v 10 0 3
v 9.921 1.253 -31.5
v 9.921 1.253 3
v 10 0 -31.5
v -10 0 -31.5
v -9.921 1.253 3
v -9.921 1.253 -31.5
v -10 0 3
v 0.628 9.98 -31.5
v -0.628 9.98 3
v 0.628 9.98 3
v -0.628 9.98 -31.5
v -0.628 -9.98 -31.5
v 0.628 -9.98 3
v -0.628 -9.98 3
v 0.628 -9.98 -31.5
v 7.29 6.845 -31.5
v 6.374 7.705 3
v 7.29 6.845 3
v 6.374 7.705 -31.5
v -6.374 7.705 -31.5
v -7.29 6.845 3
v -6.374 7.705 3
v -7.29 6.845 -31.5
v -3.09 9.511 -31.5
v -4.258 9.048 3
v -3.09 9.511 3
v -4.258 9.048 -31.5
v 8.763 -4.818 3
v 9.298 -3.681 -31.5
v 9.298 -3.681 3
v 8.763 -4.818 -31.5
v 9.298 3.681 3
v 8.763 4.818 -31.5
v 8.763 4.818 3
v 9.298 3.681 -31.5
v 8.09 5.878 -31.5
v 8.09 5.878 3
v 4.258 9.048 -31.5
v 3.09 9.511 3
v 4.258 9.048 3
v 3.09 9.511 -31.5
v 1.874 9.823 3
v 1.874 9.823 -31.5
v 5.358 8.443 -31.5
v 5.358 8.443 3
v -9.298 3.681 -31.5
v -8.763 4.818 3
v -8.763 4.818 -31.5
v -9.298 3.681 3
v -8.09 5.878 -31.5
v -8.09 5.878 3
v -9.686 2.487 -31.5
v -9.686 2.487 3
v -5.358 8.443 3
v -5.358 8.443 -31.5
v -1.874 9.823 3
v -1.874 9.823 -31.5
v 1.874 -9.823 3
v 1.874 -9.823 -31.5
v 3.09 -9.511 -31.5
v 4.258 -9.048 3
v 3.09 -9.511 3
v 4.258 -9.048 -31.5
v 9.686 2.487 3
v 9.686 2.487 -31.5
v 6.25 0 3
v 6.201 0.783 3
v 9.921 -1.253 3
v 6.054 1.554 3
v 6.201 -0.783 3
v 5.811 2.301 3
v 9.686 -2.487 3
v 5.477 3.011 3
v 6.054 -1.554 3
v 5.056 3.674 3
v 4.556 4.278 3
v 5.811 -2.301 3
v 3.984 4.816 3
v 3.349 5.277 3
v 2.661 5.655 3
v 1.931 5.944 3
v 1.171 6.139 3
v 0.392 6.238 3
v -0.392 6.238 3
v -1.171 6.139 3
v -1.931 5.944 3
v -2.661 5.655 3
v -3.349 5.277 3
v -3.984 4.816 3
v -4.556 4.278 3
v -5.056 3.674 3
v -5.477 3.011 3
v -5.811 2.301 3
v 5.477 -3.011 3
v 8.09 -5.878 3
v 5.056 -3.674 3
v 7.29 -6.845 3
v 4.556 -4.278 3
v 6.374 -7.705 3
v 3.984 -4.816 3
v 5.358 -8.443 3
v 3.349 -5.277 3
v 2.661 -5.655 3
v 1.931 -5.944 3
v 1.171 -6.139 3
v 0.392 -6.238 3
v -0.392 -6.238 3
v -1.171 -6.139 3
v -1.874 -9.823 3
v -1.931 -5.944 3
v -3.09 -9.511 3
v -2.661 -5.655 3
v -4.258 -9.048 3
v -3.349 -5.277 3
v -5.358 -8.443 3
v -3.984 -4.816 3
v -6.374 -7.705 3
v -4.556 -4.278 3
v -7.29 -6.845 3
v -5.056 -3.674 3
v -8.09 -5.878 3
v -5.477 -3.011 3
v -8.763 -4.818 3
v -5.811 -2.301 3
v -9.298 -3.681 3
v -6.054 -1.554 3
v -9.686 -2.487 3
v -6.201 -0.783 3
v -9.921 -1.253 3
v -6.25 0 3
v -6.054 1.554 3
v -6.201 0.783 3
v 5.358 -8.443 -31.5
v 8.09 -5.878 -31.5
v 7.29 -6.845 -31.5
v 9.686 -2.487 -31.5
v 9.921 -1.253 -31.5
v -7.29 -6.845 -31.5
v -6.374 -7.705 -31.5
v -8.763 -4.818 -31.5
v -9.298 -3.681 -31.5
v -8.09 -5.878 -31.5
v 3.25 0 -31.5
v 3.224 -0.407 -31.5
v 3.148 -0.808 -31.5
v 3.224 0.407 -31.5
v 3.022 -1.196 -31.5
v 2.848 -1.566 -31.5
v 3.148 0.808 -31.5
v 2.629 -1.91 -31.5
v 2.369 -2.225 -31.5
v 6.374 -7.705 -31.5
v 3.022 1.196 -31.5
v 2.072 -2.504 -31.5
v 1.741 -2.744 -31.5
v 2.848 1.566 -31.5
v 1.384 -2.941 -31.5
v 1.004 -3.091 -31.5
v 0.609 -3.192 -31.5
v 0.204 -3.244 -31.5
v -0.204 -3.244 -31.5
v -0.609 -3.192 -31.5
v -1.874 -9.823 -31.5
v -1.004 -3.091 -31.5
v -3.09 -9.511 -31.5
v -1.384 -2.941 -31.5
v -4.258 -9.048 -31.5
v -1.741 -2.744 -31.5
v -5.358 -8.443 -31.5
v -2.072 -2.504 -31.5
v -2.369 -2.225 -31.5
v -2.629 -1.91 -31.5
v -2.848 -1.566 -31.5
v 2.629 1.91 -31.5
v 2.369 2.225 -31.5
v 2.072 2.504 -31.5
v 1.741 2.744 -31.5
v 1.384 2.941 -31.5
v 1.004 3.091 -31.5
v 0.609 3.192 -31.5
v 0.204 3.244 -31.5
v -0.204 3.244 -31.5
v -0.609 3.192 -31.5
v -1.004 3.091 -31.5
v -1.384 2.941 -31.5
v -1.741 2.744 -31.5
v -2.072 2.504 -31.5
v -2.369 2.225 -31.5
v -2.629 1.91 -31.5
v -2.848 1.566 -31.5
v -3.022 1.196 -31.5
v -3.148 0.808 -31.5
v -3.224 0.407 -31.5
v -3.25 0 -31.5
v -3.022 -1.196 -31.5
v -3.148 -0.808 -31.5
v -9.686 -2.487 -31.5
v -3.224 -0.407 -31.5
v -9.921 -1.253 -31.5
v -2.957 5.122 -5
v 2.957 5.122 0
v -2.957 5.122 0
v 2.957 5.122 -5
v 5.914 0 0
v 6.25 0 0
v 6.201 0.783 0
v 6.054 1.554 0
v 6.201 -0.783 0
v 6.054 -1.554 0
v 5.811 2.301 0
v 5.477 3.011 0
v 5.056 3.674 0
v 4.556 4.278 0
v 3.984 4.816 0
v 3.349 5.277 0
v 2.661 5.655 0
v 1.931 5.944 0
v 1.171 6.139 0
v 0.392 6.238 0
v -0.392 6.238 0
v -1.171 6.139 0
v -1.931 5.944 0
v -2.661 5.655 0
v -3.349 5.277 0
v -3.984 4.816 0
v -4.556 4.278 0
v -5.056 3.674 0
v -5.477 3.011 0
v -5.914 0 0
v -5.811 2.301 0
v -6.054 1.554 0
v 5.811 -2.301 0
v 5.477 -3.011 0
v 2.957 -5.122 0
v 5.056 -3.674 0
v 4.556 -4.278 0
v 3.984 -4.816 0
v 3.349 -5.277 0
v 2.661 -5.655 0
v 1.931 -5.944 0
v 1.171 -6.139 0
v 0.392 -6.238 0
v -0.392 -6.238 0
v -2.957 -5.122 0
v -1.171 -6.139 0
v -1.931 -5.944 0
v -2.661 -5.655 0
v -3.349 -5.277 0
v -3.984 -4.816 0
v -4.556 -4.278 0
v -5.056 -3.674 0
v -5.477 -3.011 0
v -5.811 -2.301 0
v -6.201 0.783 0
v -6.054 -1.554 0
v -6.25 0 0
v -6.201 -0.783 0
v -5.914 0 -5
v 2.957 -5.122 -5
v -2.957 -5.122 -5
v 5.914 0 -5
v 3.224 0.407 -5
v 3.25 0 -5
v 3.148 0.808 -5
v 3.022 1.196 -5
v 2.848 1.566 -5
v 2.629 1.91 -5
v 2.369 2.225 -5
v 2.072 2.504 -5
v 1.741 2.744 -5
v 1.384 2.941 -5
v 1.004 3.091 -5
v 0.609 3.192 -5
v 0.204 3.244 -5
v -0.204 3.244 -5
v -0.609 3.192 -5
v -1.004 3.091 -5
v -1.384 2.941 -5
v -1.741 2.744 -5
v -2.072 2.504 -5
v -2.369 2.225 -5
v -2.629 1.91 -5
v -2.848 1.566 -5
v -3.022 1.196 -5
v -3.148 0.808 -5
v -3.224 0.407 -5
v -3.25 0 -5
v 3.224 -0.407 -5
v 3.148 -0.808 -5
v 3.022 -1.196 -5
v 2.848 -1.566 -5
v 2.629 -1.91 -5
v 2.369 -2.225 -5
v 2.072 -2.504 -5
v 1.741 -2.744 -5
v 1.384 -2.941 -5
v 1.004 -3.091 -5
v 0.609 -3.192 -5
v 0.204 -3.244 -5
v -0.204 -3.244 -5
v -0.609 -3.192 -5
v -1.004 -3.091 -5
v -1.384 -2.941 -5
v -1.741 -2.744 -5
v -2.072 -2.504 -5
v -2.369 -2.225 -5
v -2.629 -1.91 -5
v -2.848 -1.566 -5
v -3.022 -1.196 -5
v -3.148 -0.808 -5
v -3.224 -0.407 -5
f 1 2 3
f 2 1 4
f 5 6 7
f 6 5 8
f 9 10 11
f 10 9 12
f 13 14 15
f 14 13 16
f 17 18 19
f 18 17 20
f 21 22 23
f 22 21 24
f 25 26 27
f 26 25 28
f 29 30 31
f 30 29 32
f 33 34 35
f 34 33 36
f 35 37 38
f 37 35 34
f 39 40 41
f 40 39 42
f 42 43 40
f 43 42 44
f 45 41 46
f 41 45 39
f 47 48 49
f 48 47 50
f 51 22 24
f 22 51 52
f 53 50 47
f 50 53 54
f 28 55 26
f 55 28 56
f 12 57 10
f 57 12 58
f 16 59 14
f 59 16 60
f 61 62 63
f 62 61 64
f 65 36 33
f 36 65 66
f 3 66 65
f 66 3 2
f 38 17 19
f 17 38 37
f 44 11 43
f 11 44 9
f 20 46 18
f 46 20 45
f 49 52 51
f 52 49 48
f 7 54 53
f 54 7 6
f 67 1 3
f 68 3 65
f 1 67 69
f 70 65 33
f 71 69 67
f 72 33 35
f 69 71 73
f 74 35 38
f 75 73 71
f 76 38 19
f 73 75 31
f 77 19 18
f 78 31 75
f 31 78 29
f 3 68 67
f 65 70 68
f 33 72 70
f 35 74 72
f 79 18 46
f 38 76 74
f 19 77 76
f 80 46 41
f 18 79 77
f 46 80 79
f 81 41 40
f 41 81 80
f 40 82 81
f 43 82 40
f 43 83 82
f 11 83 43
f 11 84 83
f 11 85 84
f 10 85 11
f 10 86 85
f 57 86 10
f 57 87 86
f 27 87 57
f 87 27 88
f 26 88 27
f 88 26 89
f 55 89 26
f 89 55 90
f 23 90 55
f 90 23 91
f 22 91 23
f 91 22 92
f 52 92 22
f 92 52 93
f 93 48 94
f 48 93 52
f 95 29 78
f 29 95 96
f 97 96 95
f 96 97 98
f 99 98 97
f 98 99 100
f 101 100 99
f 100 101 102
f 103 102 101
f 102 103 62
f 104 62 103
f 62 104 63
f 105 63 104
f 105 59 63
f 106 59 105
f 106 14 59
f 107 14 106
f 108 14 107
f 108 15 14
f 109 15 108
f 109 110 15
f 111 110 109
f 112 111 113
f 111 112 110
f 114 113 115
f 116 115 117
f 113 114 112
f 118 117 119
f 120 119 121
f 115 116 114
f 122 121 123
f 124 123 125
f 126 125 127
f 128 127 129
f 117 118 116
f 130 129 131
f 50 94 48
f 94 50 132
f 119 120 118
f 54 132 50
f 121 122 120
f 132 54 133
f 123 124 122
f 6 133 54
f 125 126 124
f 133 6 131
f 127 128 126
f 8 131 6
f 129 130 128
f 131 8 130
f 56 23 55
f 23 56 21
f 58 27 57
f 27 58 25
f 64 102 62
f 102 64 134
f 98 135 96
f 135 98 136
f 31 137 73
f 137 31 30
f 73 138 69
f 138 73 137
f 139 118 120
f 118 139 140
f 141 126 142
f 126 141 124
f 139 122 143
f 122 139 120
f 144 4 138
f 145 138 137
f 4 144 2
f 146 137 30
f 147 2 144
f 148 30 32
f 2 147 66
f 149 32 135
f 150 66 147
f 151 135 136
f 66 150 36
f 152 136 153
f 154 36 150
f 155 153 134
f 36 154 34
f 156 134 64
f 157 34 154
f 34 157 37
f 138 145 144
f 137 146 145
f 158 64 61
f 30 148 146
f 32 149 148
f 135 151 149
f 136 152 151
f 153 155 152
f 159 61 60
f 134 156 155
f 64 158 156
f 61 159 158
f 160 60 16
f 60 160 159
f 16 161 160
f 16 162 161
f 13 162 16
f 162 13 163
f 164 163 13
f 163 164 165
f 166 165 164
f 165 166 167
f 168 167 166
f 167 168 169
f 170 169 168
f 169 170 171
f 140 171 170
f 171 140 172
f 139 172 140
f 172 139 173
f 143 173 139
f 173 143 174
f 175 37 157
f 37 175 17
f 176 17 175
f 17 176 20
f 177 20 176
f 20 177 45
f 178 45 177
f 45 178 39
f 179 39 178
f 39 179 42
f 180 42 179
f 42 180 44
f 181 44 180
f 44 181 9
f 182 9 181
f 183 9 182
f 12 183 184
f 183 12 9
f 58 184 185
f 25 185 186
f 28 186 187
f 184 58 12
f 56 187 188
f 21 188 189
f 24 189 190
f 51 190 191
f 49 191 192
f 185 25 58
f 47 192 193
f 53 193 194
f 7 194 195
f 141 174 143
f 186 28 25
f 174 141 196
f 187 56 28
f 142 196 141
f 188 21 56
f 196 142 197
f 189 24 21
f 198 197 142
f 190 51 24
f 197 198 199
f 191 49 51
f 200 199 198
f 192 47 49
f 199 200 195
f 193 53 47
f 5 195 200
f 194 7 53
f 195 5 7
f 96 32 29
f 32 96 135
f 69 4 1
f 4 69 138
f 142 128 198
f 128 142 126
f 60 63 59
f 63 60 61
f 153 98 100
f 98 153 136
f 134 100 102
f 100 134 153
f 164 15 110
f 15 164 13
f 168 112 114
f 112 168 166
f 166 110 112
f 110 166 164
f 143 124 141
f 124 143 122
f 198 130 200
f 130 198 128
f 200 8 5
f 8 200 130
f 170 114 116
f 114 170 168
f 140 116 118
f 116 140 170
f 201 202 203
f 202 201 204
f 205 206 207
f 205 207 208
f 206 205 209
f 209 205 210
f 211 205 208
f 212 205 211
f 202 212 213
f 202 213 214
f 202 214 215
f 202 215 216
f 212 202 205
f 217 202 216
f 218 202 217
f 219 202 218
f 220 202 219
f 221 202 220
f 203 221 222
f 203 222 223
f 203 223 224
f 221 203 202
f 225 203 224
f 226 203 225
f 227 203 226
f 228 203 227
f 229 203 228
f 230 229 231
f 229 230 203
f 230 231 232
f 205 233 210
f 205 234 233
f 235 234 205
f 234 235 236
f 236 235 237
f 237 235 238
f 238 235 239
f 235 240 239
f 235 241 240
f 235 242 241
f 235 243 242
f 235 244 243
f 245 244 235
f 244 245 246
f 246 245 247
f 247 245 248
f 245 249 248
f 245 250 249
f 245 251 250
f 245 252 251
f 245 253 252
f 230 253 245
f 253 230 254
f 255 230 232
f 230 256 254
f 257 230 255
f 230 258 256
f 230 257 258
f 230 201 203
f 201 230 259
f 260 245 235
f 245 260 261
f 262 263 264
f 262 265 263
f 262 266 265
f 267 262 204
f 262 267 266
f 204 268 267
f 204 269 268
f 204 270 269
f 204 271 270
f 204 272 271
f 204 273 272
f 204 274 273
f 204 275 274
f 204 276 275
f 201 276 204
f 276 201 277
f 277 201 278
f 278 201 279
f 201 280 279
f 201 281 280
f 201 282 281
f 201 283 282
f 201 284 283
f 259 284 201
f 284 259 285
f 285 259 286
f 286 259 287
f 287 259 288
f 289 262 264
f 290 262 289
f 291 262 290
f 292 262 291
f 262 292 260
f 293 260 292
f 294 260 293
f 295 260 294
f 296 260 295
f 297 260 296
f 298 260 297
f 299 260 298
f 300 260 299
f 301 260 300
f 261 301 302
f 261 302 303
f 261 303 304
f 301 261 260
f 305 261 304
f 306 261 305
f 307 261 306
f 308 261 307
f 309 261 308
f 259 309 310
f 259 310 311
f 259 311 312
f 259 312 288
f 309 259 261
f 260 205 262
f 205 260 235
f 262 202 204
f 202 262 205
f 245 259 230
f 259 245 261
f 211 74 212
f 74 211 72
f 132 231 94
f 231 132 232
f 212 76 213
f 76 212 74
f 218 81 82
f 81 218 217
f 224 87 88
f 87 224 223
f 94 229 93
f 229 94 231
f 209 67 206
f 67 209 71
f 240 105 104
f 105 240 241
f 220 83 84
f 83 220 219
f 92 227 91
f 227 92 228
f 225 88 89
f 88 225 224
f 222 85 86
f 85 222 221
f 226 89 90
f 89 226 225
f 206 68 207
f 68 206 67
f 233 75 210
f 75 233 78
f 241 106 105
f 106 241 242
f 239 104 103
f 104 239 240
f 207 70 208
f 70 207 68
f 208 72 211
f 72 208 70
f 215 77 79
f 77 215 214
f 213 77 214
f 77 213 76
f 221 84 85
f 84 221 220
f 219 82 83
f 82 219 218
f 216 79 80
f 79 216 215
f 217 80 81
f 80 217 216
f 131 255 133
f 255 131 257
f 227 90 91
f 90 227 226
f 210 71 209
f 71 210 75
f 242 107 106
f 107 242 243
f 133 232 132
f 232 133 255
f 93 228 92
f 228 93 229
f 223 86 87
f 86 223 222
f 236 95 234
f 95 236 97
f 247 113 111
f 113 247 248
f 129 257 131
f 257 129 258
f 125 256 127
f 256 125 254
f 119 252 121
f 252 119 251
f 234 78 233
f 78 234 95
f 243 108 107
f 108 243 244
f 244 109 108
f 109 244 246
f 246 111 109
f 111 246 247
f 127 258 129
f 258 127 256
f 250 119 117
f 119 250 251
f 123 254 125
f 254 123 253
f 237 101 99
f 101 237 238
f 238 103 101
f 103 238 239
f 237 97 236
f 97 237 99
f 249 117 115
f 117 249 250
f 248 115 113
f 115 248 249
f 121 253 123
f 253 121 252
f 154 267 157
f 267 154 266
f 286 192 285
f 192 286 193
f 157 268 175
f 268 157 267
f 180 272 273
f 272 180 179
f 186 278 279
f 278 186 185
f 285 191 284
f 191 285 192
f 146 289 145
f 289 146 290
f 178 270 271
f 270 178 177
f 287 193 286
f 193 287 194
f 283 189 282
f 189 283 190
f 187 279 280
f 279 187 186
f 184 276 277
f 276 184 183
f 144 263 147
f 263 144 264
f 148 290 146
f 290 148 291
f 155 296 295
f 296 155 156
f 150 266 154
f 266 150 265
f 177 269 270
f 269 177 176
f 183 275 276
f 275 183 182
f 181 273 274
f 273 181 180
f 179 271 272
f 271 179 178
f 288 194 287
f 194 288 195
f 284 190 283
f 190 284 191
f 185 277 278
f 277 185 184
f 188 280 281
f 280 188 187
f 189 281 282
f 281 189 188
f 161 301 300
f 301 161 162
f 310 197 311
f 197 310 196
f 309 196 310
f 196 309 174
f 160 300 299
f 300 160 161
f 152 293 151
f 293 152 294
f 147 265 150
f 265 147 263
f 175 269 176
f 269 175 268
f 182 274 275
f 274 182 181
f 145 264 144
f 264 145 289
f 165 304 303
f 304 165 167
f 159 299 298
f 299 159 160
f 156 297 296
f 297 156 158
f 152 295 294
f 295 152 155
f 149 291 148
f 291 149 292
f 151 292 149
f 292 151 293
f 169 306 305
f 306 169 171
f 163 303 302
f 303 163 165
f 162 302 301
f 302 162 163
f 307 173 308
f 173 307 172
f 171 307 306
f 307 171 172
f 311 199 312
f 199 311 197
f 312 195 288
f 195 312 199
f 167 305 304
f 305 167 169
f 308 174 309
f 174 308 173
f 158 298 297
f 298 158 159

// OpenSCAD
$fn = 50;


difference() {
	union() {
		translate(v = [0, 0, -31.5000000000]) {
			cylinder(h = 34.5000000000, r = 10.0000000000);
		}
		#translate(v = [0, 0, -33.0000000000]) {
			cylinder(h = 33, r = 2.8750000000);
		}
	}
	union() {
		translate(v = [0, 0, 0]) {
			rotate(a = [0, 0, 0]) {
				difference() {
					union() {
						translate(v = [0, 0, -5]) {
							linear_extrude(height = 5) {
								polygon(points = [[5.9142500000, 0.0000000000], [2.9571250000, 5.1218907443], [-2.9571250000, 5.1218907443], [-5.9142500000, 0.0000000000], [-2.9571250000, -5.1218907443], [2.9571250000, -5.1218907443]]);
							}
						}
					}
					union();
				}
			}
		}
		#cylinder(h = 3, r = 6.2500000000);
		#translate(v = [0, 0, -100.0000000000]) {
			cylinder(h = 200, r = 3.2500000000);
		}
	}
}
